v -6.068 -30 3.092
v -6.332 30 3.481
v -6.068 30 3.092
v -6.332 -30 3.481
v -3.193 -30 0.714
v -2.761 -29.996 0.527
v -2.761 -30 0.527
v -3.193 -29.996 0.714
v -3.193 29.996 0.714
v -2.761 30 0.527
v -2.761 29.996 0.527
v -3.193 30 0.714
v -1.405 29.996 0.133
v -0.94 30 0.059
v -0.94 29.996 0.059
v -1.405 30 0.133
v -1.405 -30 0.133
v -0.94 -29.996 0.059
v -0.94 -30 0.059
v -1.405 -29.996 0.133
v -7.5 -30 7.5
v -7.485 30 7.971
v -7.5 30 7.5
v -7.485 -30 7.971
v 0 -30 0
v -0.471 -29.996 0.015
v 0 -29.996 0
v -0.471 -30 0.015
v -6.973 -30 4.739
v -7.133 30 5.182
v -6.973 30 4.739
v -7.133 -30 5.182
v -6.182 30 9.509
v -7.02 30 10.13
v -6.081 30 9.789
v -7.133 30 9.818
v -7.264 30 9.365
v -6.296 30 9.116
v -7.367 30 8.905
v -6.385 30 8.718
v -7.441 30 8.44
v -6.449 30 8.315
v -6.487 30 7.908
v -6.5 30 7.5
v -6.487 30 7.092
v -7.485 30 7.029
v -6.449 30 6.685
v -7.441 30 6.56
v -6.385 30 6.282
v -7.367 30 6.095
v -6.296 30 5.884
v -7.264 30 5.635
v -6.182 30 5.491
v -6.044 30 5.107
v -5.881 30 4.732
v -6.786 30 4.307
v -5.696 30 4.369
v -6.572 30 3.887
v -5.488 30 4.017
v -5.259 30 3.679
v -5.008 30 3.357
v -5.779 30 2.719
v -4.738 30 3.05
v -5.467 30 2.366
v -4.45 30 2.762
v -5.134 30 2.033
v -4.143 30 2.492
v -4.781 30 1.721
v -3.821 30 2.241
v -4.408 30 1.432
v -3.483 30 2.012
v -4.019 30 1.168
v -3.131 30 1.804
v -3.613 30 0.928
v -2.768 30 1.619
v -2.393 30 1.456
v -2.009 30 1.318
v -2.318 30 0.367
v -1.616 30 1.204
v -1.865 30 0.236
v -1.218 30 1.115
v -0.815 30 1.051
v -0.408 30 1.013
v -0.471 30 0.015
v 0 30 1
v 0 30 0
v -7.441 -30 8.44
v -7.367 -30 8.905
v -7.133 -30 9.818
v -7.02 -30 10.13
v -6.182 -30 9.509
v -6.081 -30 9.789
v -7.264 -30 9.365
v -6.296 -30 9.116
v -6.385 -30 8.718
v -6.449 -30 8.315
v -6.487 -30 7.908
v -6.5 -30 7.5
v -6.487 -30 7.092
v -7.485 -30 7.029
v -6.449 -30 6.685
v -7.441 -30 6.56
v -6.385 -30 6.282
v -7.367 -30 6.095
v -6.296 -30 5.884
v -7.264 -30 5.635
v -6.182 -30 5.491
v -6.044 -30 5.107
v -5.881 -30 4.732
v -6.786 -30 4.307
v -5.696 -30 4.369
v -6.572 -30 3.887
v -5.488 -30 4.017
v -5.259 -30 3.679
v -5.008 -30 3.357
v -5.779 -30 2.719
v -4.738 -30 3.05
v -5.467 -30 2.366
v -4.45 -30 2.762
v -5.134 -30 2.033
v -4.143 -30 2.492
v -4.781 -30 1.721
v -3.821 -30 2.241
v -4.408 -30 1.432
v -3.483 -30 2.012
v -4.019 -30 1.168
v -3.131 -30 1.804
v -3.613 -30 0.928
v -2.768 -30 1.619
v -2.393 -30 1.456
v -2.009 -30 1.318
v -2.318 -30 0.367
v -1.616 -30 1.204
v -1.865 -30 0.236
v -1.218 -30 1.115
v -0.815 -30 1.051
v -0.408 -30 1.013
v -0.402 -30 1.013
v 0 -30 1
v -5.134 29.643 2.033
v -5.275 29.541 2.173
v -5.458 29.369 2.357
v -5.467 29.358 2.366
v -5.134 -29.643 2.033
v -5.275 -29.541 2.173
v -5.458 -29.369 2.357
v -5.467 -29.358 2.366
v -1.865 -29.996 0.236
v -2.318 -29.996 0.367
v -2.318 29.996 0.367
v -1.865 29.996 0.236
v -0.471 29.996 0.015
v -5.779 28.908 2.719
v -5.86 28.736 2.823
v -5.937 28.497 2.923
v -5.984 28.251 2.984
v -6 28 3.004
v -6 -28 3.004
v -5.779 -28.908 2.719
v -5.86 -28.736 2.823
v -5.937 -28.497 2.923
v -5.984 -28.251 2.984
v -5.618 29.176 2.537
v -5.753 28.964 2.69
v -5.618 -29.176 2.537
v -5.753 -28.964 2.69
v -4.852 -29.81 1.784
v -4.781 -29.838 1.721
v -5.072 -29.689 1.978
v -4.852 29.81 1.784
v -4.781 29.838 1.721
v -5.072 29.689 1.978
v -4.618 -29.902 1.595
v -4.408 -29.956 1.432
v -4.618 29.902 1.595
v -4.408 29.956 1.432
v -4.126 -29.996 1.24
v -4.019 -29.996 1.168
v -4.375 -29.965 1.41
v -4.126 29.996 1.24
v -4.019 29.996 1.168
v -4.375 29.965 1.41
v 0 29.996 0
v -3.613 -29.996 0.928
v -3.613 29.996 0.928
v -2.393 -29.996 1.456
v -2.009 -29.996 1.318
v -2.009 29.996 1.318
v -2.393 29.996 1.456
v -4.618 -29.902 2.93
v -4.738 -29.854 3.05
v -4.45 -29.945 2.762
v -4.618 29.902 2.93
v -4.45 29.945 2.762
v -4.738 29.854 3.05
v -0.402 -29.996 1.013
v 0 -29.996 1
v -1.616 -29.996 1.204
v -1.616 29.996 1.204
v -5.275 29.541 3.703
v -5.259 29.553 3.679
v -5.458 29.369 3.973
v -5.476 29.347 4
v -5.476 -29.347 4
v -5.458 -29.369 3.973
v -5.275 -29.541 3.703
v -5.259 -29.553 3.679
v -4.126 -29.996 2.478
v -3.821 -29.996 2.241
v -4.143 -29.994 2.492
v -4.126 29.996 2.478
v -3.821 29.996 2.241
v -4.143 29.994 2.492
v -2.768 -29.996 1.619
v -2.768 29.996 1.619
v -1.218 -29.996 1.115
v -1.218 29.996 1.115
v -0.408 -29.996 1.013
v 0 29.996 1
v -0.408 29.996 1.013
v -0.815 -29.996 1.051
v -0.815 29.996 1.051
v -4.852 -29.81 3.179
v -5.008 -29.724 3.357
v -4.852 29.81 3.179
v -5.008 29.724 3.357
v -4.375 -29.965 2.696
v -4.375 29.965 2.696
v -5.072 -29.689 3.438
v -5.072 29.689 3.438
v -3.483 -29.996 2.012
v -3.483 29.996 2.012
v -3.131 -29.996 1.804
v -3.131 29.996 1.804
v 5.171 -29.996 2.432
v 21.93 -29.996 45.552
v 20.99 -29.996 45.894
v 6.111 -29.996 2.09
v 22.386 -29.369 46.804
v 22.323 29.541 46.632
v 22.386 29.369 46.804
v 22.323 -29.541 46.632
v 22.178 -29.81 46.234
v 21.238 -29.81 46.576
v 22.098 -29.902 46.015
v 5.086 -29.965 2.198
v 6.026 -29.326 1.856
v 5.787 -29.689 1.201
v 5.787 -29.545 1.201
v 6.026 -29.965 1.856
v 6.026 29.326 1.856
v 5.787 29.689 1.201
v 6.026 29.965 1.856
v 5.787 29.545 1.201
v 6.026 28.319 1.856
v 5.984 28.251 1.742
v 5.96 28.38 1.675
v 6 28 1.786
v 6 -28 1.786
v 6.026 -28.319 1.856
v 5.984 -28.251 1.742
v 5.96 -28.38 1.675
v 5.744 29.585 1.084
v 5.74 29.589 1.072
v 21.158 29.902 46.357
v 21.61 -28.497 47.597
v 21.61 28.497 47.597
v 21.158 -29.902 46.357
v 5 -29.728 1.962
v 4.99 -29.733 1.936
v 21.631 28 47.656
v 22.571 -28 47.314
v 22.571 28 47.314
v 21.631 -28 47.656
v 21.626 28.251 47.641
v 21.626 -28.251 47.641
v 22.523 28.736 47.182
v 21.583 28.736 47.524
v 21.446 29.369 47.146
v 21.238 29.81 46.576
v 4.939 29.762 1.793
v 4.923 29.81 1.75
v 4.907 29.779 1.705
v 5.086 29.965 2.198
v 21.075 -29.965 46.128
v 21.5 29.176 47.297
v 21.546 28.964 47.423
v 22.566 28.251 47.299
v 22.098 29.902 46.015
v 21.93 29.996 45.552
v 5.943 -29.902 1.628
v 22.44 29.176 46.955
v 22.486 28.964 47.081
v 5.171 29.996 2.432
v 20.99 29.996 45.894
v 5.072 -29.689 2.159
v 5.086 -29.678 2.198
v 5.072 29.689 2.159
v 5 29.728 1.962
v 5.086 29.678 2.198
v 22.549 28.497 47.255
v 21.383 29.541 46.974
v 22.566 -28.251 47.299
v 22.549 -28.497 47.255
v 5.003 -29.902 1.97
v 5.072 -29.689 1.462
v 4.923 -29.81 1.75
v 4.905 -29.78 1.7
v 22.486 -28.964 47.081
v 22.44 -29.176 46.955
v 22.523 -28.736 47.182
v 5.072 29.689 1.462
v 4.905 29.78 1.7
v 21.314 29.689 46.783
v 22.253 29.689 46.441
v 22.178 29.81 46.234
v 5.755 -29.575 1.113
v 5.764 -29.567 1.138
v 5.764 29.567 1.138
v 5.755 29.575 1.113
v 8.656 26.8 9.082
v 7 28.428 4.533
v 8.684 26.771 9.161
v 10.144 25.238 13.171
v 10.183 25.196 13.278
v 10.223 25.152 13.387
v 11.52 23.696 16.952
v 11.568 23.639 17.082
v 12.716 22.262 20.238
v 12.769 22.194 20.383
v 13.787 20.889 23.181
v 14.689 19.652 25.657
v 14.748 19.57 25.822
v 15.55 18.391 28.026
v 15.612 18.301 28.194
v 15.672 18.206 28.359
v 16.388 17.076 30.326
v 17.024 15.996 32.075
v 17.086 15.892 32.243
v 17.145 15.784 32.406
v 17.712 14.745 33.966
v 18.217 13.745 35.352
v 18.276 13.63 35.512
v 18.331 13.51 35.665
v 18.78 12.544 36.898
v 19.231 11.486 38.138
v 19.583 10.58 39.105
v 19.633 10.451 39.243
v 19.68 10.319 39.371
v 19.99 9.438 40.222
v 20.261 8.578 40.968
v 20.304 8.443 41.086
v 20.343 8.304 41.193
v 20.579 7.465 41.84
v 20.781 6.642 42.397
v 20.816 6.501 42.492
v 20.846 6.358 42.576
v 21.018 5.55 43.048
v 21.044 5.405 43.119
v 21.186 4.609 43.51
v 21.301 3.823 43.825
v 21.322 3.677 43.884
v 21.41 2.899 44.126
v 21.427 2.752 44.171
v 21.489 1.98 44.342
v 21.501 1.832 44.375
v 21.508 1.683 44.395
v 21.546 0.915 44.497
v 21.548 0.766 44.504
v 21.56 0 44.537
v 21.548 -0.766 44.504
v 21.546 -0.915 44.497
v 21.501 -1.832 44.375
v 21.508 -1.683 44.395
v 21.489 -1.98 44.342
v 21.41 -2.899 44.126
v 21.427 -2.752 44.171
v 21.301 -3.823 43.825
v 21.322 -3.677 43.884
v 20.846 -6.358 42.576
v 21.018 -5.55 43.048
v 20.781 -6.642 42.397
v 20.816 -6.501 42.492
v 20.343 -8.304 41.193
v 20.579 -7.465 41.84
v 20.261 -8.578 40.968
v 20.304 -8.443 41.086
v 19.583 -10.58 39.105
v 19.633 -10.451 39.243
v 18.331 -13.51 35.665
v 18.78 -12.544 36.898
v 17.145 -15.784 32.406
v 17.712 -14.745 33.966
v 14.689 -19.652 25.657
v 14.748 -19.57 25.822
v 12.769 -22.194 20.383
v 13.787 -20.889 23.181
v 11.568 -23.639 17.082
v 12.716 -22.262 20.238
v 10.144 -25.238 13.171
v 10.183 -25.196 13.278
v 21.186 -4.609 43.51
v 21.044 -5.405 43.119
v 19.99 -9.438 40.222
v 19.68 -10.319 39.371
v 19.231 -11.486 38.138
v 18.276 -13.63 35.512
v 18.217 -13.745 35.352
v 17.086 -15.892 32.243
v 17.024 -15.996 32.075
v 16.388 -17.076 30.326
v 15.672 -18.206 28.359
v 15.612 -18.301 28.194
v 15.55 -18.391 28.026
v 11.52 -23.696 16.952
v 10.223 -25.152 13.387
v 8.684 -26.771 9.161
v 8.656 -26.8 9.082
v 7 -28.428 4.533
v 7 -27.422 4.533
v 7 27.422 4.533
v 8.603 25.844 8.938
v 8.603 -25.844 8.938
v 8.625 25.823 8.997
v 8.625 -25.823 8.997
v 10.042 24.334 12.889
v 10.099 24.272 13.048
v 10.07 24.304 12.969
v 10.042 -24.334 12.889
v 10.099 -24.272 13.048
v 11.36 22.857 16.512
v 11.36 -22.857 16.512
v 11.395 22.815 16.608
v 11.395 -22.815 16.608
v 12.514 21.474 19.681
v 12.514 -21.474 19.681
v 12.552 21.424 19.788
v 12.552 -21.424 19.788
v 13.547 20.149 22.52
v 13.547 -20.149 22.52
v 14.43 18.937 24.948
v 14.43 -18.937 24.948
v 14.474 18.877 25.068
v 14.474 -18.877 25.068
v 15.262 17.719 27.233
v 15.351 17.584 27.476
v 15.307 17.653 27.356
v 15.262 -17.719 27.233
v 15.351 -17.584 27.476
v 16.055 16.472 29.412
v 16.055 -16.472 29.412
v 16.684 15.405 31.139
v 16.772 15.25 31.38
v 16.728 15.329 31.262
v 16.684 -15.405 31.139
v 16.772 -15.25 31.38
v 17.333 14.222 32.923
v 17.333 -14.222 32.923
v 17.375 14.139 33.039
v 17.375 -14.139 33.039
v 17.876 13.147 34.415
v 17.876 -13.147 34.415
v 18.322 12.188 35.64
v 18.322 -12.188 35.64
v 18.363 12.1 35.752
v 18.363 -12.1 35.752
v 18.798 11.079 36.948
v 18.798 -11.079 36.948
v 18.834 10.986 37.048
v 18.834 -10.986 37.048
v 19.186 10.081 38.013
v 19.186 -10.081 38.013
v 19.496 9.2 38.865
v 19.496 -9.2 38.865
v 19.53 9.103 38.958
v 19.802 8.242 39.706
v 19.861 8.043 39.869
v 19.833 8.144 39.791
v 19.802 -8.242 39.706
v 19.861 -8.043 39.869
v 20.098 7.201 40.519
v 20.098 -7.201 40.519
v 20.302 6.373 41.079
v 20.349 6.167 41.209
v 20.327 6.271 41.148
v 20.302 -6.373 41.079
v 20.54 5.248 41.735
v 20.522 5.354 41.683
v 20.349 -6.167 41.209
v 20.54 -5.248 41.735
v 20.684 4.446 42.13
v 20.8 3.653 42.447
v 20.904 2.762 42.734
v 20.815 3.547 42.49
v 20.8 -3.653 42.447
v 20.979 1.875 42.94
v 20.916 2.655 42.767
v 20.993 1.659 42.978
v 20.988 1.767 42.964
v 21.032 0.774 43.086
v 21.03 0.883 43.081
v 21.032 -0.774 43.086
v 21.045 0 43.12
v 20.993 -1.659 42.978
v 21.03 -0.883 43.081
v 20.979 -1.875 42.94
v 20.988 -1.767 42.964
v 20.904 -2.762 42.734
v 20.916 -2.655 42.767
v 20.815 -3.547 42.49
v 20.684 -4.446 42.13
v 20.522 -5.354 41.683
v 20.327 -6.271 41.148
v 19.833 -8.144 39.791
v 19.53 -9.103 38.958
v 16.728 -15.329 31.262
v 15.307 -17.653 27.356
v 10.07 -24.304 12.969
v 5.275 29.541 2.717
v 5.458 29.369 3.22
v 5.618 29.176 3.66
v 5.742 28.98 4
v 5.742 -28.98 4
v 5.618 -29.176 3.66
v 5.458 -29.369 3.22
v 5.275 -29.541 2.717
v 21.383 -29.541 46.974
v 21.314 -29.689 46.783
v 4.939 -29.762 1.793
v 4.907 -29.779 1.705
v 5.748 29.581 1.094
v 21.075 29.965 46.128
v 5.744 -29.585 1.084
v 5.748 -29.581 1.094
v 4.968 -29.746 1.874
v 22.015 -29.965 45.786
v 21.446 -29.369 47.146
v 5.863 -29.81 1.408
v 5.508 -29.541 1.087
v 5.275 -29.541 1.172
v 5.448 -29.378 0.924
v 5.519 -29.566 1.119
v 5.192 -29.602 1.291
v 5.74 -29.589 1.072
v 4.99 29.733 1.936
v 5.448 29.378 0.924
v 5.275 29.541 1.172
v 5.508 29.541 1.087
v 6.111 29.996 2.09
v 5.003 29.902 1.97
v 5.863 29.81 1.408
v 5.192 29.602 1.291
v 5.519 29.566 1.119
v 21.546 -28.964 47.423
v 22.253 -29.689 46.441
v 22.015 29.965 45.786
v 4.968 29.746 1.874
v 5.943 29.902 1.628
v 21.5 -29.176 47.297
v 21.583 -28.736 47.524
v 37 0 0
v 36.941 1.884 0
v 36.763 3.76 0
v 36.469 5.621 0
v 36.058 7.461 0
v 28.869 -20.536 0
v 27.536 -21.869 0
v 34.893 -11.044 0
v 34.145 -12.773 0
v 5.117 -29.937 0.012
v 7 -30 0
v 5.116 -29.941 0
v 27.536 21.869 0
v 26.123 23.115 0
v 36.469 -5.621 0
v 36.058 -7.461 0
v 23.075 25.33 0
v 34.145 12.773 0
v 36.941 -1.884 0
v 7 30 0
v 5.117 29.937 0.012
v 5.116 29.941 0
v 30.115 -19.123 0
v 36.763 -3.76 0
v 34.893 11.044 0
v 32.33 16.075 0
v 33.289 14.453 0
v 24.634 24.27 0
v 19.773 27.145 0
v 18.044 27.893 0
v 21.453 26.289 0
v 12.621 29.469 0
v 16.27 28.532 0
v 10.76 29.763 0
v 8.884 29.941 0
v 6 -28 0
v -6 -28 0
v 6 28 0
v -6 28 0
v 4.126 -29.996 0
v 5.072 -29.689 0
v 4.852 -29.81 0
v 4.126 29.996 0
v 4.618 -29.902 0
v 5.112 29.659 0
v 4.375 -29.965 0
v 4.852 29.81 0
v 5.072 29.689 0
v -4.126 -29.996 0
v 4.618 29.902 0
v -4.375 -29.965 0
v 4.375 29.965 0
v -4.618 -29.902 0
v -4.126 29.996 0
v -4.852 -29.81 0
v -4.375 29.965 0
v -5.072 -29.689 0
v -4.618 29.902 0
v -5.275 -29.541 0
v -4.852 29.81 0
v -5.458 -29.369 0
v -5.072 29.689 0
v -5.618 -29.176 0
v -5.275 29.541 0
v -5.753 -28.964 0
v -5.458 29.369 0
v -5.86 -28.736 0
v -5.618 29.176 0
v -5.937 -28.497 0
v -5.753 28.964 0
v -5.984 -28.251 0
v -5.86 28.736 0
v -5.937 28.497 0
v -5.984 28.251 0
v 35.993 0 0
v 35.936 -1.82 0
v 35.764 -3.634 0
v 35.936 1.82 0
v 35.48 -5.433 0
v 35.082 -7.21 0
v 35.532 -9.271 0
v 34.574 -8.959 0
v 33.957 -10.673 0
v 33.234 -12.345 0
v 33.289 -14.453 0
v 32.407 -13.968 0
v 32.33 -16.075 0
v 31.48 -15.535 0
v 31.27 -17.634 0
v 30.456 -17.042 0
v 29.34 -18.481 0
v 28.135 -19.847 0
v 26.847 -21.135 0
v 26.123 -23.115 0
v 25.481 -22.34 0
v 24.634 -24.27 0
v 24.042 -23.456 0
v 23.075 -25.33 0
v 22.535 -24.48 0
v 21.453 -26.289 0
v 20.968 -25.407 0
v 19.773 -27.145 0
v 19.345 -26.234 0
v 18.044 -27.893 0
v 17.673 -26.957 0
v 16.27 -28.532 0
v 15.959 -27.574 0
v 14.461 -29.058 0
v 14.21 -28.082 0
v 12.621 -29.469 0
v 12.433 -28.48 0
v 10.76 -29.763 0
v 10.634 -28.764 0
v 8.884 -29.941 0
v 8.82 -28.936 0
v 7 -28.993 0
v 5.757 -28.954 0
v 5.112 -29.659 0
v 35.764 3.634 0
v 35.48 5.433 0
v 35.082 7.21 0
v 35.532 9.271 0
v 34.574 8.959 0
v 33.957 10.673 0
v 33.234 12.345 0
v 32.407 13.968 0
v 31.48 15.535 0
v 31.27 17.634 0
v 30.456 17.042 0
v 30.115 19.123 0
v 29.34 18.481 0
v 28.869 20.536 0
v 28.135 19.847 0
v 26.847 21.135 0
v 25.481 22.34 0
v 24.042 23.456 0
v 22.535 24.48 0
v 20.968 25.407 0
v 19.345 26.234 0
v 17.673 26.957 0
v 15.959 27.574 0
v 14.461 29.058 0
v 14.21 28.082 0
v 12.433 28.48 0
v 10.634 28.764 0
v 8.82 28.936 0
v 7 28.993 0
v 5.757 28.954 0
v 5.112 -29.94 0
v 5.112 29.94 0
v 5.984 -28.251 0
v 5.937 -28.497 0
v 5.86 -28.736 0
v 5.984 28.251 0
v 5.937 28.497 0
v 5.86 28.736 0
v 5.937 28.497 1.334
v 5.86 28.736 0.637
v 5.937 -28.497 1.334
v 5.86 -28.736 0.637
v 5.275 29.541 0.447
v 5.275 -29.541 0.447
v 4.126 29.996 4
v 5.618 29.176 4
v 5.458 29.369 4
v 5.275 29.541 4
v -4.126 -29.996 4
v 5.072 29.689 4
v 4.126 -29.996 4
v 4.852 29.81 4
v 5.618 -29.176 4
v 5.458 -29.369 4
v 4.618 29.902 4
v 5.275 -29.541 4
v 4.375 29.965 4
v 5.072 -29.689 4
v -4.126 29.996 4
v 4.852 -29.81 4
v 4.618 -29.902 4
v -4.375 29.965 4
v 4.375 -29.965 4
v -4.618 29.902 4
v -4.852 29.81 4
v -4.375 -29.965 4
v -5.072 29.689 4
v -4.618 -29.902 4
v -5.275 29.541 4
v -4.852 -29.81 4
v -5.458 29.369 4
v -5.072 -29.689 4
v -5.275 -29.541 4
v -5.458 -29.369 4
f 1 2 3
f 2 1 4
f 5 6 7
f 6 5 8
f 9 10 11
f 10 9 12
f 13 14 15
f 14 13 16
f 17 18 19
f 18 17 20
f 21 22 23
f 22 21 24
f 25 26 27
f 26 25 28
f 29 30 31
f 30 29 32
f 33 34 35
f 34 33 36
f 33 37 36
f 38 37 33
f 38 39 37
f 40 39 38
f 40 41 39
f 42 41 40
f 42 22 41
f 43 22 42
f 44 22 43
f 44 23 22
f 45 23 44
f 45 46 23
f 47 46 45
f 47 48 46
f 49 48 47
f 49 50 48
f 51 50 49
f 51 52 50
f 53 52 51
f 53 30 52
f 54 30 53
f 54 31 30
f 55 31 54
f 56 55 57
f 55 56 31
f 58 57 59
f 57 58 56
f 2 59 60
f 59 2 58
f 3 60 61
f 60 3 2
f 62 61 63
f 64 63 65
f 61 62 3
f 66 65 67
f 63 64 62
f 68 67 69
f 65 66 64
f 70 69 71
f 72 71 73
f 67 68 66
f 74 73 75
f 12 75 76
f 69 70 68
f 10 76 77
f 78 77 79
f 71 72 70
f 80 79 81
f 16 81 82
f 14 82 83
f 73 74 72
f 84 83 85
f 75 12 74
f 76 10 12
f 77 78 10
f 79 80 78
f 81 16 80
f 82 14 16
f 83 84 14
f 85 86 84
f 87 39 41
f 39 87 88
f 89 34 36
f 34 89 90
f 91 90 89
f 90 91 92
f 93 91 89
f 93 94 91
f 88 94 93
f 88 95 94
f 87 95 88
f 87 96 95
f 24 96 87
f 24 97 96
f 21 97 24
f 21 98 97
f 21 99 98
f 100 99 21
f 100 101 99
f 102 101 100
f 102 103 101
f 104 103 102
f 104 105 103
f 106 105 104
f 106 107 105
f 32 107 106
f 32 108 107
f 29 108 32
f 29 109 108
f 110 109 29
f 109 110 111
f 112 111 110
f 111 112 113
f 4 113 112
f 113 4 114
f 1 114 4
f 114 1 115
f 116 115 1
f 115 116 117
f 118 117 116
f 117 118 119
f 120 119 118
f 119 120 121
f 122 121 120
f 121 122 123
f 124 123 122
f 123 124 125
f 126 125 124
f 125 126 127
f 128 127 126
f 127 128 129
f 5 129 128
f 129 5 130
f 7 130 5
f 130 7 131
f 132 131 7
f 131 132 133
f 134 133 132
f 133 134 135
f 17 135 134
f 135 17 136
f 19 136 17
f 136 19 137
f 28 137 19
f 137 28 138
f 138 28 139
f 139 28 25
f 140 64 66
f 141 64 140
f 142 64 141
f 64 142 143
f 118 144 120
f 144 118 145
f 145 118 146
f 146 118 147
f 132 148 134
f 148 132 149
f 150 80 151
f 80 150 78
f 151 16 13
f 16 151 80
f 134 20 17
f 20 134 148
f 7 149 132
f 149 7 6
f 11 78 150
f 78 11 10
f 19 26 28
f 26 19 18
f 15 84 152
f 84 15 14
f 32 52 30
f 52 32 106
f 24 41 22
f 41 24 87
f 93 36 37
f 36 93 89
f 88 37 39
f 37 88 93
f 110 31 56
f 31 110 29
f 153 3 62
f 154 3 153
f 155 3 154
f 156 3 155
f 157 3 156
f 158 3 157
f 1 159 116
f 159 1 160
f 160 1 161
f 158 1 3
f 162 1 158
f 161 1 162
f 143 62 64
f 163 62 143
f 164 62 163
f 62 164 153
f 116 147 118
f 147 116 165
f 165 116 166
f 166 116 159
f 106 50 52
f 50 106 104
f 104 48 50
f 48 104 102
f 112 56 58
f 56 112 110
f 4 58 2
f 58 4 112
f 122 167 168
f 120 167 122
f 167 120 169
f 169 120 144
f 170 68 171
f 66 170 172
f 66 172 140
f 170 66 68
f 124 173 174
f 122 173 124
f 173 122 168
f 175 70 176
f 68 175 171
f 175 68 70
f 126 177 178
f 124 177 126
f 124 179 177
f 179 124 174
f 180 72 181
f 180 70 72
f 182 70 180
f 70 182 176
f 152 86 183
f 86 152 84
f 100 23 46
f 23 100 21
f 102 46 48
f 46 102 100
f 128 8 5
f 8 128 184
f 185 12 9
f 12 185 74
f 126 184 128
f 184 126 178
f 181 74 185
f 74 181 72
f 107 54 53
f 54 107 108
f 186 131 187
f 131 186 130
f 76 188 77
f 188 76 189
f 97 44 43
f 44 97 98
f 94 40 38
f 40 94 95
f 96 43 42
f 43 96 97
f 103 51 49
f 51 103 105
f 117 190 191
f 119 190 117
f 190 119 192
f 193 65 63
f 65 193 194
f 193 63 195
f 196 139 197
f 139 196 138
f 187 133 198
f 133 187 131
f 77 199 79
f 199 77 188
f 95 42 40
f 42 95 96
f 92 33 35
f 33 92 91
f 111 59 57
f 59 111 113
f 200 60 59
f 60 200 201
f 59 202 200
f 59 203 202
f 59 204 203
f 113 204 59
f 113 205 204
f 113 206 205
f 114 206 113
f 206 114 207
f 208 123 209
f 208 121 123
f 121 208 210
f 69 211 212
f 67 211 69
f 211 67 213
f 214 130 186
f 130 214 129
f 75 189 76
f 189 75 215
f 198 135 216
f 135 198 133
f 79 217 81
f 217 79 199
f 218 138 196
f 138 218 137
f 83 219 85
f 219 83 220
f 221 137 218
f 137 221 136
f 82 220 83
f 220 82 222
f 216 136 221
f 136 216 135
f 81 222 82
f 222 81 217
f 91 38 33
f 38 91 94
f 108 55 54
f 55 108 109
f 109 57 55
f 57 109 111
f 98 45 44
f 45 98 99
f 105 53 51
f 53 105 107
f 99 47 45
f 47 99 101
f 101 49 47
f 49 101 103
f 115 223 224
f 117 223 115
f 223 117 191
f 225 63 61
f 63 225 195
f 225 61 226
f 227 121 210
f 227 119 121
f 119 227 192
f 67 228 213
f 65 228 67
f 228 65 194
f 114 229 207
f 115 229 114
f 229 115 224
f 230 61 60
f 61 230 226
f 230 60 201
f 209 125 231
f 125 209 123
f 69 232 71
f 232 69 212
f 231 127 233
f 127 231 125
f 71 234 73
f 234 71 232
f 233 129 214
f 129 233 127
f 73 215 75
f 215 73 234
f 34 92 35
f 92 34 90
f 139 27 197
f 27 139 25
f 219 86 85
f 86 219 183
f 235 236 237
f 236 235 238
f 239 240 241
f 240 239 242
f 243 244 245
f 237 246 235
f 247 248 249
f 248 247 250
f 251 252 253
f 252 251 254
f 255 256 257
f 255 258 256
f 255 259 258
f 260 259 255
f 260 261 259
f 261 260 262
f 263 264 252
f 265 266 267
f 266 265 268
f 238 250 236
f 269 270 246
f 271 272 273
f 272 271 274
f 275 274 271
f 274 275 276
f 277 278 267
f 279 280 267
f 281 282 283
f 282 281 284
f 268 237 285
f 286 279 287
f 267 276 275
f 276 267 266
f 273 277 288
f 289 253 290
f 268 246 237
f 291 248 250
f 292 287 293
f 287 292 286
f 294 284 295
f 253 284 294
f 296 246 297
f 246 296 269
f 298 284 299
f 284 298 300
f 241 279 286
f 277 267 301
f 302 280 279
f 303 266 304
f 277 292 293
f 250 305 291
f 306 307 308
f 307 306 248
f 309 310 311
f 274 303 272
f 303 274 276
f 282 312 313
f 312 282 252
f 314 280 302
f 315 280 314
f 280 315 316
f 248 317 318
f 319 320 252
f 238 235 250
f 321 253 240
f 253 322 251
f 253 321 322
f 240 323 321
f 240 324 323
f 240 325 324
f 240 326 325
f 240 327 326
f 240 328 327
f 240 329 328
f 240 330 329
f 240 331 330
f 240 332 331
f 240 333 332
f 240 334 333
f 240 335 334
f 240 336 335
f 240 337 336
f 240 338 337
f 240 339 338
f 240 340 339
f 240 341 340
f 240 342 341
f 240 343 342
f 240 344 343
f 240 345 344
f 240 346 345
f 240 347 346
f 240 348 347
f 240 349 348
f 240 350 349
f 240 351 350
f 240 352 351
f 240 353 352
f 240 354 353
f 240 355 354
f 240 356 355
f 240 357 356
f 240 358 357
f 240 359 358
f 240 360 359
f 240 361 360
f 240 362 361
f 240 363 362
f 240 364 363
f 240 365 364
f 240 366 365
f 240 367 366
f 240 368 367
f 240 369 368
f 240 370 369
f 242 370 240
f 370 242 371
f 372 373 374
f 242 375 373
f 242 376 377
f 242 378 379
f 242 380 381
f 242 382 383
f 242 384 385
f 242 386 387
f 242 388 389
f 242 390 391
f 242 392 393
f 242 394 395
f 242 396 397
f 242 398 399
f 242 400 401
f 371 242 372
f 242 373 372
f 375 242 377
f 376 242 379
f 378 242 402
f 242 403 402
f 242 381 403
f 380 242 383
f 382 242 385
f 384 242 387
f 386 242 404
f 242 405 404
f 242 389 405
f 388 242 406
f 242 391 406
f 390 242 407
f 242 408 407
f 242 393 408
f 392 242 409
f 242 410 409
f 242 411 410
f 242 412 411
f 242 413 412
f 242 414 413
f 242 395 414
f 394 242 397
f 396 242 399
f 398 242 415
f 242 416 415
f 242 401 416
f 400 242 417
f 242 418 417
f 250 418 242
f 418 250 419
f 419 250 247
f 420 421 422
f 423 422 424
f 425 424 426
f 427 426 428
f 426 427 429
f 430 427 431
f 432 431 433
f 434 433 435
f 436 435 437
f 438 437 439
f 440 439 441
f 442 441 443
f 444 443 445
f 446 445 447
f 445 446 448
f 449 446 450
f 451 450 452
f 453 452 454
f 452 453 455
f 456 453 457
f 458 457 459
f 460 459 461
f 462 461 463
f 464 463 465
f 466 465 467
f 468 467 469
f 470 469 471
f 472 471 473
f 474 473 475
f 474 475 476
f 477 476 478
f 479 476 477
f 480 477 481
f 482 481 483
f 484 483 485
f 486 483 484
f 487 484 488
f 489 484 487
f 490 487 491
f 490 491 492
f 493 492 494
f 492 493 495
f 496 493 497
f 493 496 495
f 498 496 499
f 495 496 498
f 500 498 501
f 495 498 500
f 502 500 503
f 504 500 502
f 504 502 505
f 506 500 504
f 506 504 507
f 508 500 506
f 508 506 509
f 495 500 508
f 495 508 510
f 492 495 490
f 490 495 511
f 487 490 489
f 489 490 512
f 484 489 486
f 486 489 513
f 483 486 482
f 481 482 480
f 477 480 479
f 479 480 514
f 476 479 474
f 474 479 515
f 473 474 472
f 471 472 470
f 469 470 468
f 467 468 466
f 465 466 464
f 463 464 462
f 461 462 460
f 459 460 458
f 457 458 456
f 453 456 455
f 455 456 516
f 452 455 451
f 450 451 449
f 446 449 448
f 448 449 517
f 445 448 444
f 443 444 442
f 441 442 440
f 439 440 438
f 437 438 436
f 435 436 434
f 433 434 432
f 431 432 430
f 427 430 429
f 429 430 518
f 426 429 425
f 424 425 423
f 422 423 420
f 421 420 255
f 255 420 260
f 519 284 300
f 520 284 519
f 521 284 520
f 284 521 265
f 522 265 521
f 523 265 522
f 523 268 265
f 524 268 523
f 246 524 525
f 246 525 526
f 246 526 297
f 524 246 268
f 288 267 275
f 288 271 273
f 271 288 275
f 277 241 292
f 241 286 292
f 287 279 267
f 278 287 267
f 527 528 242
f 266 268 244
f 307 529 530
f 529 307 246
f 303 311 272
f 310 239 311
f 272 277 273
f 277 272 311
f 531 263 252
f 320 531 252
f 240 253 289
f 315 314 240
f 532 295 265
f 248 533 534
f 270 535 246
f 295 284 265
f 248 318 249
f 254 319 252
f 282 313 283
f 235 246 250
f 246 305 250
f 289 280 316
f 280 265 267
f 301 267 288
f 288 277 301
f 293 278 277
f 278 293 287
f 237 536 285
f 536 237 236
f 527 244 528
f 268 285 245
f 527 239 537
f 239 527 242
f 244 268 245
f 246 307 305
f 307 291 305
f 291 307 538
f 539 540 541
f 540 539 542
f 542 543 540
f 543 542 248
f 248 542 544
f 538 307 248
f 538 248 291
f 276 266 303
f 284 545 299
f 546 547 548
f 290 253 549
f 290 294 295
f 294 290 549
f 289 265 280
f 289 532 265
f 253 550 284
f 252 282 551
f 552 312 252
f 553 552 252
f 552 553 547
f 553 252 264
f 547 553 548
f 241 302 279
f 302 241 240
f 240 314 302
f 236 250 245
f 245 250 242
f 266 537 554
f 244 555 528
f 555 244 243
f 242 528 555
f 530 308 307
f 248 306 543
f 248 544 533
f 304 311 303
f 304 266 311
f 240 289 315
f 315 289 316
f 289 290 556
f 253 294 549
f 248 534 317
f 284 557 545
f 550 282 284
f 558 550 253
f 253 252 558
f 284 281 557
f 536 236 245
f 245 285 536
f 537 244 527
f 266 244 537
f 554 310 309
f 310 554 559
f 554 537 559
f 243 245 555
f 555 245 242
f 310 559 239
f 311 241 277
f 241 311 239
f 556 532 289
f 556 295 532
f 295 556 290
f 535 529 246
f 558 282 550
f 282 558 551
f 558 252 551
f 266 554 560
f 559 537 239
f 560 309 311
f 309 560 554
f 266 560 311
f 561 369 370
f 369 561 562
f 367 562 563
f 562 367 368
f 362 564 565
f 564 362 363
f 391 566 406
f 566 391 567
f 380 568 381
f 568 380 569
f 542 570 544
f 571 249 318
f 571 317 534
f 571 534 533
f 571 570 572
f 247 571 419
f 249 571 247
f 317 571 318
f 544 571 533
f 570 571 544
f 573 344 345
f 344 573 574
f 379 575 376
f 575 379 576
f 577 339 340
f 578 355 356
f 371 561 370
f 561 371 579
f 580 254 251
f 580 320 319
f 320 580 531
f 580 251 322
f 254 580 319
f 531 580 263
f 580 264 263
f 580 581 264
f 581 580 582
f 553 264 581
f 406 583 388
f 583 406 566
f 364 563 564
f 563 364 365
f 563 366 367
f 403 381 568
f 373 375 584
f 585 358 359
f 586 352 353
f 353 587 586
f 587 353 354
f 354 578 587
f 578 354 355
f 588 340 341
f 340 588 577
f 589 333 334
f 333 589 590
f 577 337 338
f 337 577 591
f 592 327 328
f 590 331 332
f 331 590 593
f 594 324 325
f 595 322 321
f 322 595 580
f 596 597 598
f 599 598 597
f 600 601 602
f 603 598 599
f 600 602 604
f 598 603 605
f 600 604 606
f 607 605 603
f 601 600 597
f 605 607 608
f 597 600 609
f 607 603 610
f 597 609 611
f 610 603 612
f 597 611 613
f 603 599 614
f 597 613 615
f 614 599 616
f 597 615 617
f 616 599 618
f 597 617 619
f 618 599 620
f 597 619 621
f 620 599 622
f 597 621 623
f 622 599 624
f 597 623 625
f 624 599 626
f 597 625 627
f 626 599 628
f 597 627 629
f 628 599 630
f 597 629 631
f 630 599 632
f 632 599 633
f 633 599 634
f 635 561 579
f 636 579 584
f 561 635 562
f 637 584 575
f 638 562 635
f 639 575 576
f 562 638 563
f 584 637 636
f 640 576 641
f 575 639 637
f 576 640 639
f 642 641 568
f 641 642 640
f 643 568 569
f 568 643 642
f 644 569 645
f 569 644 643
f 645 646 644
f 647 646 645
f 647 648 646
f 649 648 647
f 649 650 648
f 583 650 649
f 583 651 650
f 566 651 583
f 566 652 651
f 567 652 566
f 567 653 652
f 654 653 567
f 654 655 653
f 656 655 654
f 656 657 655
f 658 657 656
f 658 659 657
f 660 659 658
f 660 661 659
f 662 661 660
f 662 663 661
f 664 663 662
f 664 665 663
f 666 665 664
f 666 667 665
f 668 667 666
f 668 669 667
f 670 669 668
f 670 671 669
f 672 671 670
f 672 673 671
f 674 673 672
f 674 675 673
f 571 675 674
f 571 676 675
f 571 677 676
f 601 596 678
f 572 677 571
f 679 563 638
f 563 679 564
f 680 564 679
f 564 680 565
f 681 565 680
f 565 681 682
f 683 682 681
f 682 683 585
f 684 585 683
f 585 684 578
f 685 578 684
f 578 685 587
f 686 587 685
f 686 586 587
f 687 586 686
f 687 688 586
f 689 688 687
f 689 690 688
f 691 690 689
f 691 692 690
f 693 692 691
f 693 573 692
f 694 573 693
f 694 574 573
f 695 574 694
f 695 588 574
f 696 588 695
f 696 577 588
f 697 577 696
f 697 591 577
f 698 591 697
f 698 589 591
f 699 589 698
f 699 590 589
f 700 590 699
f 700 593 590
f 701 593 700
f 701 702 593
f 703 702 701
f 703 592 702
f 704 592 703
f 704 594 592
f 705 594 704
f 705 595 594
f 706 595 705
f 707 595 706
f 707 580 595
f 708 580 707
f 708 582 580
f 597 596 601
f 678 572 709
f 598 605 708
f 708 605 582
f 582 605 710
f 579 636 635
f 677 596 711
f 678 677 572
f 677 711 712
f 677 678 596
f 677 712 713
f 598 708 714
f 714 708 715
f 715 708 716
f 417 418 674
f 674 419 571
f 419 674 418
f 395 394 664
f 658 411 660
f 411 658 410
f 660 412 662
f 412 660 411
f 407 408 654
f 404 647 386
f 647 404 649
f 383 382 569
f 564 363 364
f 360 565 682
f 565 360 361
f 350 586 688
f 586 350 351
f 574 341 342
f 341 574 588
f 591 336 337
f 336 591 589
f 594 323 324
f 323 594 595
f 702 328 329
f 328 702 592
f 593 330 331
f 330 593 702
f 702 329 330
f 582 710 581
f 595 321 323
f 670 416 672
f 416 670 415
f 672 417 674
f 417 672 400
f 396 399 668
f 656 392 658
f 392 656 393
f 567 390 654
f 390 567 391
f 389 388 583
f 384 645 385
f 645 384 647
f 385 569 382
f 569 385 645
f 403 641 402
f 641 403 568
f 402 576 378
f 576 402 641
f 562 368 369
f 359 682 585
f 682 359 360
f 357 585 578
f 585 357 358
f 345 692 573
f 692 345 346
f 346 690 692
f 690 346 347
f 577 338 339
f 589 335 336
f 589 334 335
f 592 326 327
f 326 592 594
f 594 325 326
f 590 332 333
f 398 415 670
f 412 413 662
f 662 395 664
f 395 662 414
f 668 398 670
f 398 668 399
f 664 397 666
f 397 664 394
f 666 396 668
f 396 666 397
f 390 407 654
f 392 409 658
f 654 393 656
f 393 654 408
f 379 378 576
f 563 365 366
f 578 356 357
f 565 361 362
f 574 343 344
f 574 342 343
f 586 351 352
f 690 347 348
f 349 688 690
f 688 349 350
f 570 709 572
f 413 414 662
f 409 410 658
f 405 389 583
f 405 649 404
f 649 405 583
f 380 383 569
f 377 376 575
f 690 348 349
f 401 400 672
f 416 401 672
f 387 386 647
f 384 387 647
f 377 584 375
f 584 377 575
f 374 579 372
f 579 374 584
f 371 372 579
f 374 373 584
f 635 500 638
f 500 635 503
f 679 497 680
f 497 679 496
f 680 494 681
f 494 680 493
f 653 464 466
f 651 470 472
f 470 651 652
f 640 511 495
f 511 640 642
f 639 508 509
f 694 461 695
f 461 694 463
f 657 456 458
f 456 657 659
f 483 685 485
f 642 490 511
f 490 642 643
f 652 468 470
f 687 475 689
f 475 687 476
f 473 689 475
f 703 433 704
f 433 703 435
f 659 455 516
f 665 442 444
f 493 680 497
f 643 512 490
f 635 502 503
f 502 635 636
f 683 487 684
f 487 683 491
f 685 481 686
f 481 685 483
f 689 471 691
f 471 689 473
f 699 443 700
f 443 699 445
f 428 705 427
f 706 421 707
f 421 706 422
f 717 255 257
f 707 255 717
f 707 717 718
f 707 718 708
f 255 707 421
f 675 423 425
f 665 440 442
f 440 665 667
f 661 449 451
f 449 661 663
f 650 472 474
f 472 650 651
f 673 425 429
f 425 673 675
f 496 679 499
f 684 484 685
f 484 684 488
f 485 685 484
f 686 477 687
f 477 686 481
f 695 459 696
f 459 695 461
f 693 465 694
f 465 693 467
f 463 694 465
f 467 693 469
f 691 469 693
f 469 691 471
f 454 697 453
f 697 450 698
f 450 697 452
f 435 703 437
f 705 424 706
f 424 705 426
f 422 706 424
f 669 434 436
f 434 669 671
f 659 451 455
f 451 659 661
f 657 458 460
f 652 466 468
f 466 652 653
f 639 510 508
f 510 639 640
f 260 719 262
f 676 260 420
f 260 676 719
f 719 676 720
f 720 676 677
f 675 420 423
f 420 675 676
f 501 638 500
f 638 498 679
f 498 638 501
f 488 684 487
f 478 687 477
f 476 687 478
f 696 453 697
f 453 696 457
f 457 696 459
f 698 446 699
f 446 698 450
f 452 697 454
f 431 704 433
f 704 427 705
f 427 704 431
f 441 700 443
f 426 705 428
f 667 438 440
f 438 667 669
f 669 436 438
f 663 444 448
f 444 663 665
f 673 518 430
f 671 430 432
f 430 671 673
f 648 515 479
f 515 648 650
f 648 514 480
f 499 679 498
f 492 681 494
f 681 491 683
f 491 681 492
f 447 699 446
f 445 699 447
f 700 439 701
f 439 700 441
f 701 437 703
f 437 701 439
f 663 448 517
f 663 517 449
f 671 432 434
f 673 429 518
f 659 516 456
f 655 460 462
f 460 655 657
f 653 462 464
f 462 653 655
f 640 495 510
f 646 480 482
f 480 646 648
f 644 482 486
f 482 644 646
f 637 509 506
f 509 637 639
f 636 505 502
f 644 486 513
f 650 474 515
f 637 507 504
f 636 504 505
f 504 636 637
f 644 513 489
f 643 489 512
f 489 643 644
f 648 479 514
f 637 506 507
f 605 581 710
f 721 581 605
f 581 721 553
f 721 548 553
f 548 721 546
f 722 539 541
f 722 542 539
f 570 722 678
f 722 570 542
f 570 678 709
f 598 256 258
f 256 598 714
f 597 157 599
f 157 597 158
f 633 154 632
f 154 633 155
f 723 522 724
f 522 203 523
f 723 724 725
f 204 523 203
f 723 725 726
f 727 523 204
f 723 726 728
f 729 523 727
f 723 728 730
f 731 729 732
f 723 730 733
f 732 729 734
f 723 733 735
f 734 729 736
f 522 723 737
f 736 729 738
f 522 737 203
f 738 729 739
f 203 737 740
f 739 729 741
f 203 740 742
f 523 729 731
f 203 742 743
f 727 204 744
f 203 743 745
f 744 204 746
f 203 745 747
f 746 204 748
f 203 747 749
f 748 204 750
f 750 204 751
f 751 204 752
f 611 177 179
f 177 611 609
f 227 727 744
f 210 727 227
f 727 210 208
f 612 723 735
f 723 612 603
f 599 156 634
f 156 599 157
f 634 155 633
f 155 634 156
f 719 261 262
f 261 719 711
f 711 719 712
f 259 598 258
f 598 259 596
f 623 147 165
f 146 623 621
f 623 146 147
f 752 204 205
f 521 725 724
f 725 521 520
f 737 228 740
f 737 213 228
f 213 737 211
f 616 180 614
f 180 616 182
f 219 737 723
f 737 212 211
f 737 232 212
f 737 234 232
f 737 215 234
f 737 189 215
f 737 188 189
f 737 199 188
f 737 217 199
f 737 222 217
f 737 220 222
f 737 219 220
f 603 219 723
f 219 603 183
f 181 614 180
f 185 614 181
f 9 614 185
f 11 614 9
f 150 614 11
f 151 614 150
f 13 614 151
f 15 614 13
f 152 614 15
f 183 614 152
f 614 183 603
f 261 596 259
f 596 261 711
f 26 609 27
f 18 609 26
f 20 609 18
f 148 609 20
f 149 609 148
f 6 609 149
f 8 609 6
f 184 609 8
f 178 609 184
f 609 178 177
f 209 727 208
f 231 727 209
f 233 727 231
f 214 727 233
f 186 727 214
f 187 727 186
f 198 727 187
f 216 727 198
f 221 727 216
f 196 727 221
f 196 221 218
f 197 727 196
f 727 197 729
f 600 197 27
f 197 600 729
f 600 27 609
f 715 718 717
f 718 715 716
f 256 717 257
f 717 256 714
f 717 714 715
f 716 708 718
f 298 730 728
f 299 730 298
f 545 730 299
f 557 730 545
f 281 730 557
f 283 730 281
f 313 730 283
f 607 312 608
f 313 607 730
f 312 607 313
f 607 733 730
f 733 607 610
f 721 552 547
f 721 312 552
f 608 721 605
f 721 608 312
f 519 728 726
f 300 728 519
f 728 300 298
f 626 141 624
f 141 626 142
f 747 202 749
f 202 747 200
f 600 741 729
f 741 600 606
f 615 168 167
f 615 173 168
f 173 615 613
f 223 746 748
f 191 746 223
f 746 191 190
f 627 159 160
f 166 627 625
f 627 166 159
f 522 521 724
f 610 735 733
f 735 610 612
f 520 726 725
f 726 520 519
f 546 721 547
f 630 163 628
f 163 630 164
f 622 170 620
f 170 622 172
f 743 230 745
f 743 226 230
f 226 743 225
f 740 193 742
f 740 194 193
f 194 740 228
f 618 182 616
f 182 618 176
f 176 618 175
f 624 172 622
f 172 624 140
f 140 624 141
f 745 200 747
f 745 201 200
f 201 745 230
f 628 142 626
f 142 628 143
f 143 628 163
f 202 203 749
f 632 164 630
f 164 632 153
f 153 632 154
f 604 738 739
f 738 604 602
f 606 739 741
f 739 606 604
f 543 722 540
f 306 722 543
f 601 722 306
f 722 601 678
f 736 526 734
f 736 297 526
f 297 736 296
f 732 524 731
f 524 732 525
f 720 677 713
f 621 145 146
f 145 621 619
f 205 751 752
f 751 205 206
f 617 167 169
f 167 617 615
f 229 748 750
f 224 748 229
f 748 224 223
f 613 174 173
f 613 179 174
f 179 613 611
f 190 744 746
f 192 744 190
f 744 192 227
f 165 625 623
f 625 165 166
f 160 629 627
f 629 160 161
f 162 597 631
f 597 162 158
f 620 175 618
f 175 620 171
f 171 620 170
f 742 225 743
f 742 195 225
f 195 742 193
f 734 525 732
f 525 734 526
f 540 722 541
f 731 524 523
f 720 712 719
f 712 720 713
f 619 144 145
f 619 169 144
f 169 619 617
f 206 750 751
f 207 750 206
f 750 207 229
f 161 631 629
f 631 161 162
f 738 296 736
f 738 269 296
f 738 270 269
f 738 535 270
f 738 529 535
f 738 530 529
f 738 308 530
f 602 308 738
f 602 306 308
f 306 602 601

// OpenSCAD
// file: ../../lib/utils.scad
// Cube with rounded corners
// roundedCornerCube (50,50,4);
module roundedCornerCube(length, width, thickness){

        hull()
        {
            translate([length/2 - 2, width/2 - 2, 0]) cylinder(r=2, h=thickness, $fn=50, center=true);
            translate([length/2 - 2, -width/2 + 2, 0]) cylinder(r=2, h=thickness, $fn=50, center=true);
            translate([-length/2 + 2, width/2 - 2, 0]) cylinder(r=2, h=thickness, $fn=50, center=true);
            translate([-length/2 + 2, -width/2 + 2, 0]) cylinder(r=2, h=thickness, $fn=50, center=true);
        }

}

// Hollow cube with rounded corners. Will look like a frame with rounded con
// hollowRoundedCornerCube(50,70,4,2);
module hollowRoundedCornerCube(length, width, thickness, wallthickness)
{
    difference()
    {
        roundedCornerCube(length,width,thickness);
        roundedCornerCube(length-(wallthickness*2),width-(wallthickness*2),thickness);
    }
}

/*
module cylinderWithHandle(radius, thickness)
{
    rotate_extrude($fn=100)
        polygon( points = [[0,0], [radius,0], [radius,thickness] , [1,thickness], [2,thickness + 2] , [2,thickness + 6],[0,thickness + 6]] );
}
*/


// hollow cylinder
// hollowCylinder(radius, height, wallThickness)
// radius : radius to outter wall
// wallThickness : Thickness of wall
module hollowCylinder(radius, height, wallThickness)
{

    difference()
    {
        cylinder(h=height, r1=radius, r2=radius);
        translate([0,0,-.02]) cylinder(h=height + .04, r1=radius - wallThickness, r2=radius - wallThickness);
    }
}


// hollow cylinders
// hollowCylinders(20, 10, 2, 2, 2)
// radius : radius to outer wall
// gapsSize : size of gap between each rings
// minradius : radius of the smallest ring
module hollowCylinders(radius, height, wallThickness, gapSize, minRadius)
{
    for (i = [radius : -(gapSize + wallThickness) : minRadius])
    {
       //echo (i);
       hollowCylinder(i,height,wallThickness);
    }
}

//
// b = bottom diameter
// t = top diameter
// h = height
module cone(b, t, h)
{
    cylinder(h=h, r1=b/2, r2=t/2, $fn=100);
}

// hollowCone(10,4,20, 2)
module hollowCone(bottomRadius, topRadius, height, wallThickness)
{
    difference()
    {
        cylinder(h=height, r1=bottomRadius, r2=topRadius, $fn=100);
        translate([0,0,-.02]) cylinder(h=height, r1=bottomRadius - wallThickness, r2=topRadius - wallThickness, $fn=100);
    }
}


// w = width between flat surface
// h = height
module hex (w=10, h=2){
  cylinder (r=w/2, h=h, center=true, $fn=6);
}

// hollowCone(10,4,20, 2)
module hollowHex(w=10, h=2, th=2)
{
    difference()
    {
        cylinder (r=w/2, h=h, center=true, $fn=6);
        cylinder (r=w/2 - th, h=h, center=true, $fn=6);
    }
}

// h : height
// ns : number of sides for base
// br : bottom radius
// tr : top radius
// ro : rotation in degree between bottom and top
// sl : slice layer. high value give smooth appearence
module twistExtrude(h=50,ns=6,br=20,tr=20,ro=100,sl=5)
{

	linear_extrude(height = h, twist  = ro,	slices = sl, scale  = tr/br)
		circle(r=br, $fn=ns);
}


// h : height
// ns : number of sides for base
// br : bottom radius
// tr : top radius
// ro : rotation in degree between bottom and top
// sl : slice layer. high value give smooth appearence
// wt : wall thickness
module hollowTwistExtrude(h=50,ns=6,br=20,tr=20,ro=100,sl=5,wt=1)
{
	difference()
	{
		linear_extrude(height = h, twist  = ro,	slices = sl, scale  = tr/br)
			circle(r=br, $fn=ns);

    translate([0,0,-.01])
		linear_extrude(height = h + .1, twist  = ro,	slices = sl, scale  = tr/br)
			circle(r=br - wt, $fn=ns);
	}
}


///////////////////////////////////////////////////////////////////////////////////////////////////////////////////

// honeycomb tiles
// honeycombSquare(100,100,4,10,2);
module honeycombTiles(length, width,thickness,rad,wallThickness)
{
    //thickness = 4;
    //rad = 10;
    //wallThickness = 2;
    //length = 100;
    //width = 100;

    for (w=[0: width/rad])
    {

        if (w % 2 == 0)
        {
            //cylinder($fn=6, r=rad, h=2);
            for (i = [0 : length/((rad*2) + (wallThickness*2))])
            {
              translate([rad*(3*i) + (wallThickness*2)*i,w*rad,0]) cylinder($fn=6, r=rad, h=thickness);

              //translate([rad*6 + (wallThickness*2)*2,0,0]) cylinder($fn=6, r=10, h=2);
              //translate([rad*9 + (wallThickness*2)*3,0,0]) cylinder($fn=6, r=10, h=2);
            }
        }

        if (w % 2 == 1)
        {
            for (j = [1 : 2 : (length/(rad + wallThickness))])
            {
              translate([(rad*1.5) *j + wallThickness *j , (w*rad) + wallThickness/2 ,0])  cylinder($fn=6, r=rad, h=thickness);
                //translate([(rad*1.5) *3 + wallThickness *3 ,10,0]) circle($fn=6, r=10);
                //translate([(rad*1.5) *5 + wallThickness *5 ,10,0]) circle($fn=6, r=10);
            }
        }
    }
}

// honeycomb square
// A square area with hollow honeycomb design
// honeycombSquare(100,100,4,10,2);
module honeycombSquare(length, width, thickness, cellRad,wallThickness)
{
    difference()
    {
        cube([length,width,thickness], center=true);
        translate([-length/2,-width/2, -thickness/2]) honeycombTiles(length,width,thickness,cellRad,wallThickness);
    }
}

//honeycomb(length, width, height, cell_size, wall_thickness);
//honeycomb(50, 50, 4, 10, 1);
//hollowRoundedCornerCube(50,70,4,2);

//hollowCylinder(10,20,2);

//hollowCylinders(20, 10, 2, 2, 2);
//cone(10,2,20);

// hollowCone(10,4,20, 2);

// honeycombSquare(40,40,2,5,2);


module edgeClamp(l=10)
{
   difference()
   {
    translate([0,.6,0]) rotate([45,0,0]) cube([l,2,2], center=true);
    translate([0,.6,1.5]) cube([l + .1,1,1], center=true);
    translate([0,.6,-1.5]) cube([l + .1,1,1], center=true);
   }
   cube([l,2,2], center=true);
}

cube([10,2,2], center=true);
translate([0,0,2]) edgeClamp();
// main file
use <../../lib/utils.scad>



l = 60;
w = 70; // width of the base (l x w = area of the base) 70
h = 50; // Height of the back support 
th = 1; // thickness

er = 7; // inner radius of the curved edge in front

module body()
{
 
    // front curved edge
    difference()
    {
    translate([0, l/2,er+th/2])
        difference()
        {
            rotate([90,0,0]) cylinder(h=l, r1=er+(th/2), r2=er+(th/2), $fn=100);
            translate([0,.02,0]) rotate([90,0,0]) cylinder(h=l + 1, r1=er-th/2, r2=er-th/2, $fn=100);

        }
        translate([th,0,er*2 - th*2]) rotate([0,110,0]) cube([er+th*2,l+2,3*er+(th*2)], center=true);
        translate([5,0,5]) cube([10,l + 2,10] ,  center=true);
        
   }

    // high back
    translate([sin(20)*(h/2) + er/2 + th + th/2,0,cos(20)*(h/2) + th/2]) rotate([0,110,0]) roundedCornerCube(h, l, th);
}

// Tip over back support
module support()
{
    difference()
    {

        translate([7,0,0]) hollowCone(l/2, 4, 1.5*h, th);
        //translate([sin(20)*(h/2) + er/2 + th + th/2,0,cos(20)*(h/2) + th/2]) rotate([0,110,0]) roundedCornerCube(h, l, th);
        translate([(sin(20)*(h/2))- (h/2 * cos(20)) + th + th,0,(cos(20)*(h/2))]) rotate([0,20,0]) cube([h,l,4*h], center=true);
    }
}

union ()
{
    body();
    support();
    translate([0,0,2]) roundedCornerCube(12, l, 4);
}
